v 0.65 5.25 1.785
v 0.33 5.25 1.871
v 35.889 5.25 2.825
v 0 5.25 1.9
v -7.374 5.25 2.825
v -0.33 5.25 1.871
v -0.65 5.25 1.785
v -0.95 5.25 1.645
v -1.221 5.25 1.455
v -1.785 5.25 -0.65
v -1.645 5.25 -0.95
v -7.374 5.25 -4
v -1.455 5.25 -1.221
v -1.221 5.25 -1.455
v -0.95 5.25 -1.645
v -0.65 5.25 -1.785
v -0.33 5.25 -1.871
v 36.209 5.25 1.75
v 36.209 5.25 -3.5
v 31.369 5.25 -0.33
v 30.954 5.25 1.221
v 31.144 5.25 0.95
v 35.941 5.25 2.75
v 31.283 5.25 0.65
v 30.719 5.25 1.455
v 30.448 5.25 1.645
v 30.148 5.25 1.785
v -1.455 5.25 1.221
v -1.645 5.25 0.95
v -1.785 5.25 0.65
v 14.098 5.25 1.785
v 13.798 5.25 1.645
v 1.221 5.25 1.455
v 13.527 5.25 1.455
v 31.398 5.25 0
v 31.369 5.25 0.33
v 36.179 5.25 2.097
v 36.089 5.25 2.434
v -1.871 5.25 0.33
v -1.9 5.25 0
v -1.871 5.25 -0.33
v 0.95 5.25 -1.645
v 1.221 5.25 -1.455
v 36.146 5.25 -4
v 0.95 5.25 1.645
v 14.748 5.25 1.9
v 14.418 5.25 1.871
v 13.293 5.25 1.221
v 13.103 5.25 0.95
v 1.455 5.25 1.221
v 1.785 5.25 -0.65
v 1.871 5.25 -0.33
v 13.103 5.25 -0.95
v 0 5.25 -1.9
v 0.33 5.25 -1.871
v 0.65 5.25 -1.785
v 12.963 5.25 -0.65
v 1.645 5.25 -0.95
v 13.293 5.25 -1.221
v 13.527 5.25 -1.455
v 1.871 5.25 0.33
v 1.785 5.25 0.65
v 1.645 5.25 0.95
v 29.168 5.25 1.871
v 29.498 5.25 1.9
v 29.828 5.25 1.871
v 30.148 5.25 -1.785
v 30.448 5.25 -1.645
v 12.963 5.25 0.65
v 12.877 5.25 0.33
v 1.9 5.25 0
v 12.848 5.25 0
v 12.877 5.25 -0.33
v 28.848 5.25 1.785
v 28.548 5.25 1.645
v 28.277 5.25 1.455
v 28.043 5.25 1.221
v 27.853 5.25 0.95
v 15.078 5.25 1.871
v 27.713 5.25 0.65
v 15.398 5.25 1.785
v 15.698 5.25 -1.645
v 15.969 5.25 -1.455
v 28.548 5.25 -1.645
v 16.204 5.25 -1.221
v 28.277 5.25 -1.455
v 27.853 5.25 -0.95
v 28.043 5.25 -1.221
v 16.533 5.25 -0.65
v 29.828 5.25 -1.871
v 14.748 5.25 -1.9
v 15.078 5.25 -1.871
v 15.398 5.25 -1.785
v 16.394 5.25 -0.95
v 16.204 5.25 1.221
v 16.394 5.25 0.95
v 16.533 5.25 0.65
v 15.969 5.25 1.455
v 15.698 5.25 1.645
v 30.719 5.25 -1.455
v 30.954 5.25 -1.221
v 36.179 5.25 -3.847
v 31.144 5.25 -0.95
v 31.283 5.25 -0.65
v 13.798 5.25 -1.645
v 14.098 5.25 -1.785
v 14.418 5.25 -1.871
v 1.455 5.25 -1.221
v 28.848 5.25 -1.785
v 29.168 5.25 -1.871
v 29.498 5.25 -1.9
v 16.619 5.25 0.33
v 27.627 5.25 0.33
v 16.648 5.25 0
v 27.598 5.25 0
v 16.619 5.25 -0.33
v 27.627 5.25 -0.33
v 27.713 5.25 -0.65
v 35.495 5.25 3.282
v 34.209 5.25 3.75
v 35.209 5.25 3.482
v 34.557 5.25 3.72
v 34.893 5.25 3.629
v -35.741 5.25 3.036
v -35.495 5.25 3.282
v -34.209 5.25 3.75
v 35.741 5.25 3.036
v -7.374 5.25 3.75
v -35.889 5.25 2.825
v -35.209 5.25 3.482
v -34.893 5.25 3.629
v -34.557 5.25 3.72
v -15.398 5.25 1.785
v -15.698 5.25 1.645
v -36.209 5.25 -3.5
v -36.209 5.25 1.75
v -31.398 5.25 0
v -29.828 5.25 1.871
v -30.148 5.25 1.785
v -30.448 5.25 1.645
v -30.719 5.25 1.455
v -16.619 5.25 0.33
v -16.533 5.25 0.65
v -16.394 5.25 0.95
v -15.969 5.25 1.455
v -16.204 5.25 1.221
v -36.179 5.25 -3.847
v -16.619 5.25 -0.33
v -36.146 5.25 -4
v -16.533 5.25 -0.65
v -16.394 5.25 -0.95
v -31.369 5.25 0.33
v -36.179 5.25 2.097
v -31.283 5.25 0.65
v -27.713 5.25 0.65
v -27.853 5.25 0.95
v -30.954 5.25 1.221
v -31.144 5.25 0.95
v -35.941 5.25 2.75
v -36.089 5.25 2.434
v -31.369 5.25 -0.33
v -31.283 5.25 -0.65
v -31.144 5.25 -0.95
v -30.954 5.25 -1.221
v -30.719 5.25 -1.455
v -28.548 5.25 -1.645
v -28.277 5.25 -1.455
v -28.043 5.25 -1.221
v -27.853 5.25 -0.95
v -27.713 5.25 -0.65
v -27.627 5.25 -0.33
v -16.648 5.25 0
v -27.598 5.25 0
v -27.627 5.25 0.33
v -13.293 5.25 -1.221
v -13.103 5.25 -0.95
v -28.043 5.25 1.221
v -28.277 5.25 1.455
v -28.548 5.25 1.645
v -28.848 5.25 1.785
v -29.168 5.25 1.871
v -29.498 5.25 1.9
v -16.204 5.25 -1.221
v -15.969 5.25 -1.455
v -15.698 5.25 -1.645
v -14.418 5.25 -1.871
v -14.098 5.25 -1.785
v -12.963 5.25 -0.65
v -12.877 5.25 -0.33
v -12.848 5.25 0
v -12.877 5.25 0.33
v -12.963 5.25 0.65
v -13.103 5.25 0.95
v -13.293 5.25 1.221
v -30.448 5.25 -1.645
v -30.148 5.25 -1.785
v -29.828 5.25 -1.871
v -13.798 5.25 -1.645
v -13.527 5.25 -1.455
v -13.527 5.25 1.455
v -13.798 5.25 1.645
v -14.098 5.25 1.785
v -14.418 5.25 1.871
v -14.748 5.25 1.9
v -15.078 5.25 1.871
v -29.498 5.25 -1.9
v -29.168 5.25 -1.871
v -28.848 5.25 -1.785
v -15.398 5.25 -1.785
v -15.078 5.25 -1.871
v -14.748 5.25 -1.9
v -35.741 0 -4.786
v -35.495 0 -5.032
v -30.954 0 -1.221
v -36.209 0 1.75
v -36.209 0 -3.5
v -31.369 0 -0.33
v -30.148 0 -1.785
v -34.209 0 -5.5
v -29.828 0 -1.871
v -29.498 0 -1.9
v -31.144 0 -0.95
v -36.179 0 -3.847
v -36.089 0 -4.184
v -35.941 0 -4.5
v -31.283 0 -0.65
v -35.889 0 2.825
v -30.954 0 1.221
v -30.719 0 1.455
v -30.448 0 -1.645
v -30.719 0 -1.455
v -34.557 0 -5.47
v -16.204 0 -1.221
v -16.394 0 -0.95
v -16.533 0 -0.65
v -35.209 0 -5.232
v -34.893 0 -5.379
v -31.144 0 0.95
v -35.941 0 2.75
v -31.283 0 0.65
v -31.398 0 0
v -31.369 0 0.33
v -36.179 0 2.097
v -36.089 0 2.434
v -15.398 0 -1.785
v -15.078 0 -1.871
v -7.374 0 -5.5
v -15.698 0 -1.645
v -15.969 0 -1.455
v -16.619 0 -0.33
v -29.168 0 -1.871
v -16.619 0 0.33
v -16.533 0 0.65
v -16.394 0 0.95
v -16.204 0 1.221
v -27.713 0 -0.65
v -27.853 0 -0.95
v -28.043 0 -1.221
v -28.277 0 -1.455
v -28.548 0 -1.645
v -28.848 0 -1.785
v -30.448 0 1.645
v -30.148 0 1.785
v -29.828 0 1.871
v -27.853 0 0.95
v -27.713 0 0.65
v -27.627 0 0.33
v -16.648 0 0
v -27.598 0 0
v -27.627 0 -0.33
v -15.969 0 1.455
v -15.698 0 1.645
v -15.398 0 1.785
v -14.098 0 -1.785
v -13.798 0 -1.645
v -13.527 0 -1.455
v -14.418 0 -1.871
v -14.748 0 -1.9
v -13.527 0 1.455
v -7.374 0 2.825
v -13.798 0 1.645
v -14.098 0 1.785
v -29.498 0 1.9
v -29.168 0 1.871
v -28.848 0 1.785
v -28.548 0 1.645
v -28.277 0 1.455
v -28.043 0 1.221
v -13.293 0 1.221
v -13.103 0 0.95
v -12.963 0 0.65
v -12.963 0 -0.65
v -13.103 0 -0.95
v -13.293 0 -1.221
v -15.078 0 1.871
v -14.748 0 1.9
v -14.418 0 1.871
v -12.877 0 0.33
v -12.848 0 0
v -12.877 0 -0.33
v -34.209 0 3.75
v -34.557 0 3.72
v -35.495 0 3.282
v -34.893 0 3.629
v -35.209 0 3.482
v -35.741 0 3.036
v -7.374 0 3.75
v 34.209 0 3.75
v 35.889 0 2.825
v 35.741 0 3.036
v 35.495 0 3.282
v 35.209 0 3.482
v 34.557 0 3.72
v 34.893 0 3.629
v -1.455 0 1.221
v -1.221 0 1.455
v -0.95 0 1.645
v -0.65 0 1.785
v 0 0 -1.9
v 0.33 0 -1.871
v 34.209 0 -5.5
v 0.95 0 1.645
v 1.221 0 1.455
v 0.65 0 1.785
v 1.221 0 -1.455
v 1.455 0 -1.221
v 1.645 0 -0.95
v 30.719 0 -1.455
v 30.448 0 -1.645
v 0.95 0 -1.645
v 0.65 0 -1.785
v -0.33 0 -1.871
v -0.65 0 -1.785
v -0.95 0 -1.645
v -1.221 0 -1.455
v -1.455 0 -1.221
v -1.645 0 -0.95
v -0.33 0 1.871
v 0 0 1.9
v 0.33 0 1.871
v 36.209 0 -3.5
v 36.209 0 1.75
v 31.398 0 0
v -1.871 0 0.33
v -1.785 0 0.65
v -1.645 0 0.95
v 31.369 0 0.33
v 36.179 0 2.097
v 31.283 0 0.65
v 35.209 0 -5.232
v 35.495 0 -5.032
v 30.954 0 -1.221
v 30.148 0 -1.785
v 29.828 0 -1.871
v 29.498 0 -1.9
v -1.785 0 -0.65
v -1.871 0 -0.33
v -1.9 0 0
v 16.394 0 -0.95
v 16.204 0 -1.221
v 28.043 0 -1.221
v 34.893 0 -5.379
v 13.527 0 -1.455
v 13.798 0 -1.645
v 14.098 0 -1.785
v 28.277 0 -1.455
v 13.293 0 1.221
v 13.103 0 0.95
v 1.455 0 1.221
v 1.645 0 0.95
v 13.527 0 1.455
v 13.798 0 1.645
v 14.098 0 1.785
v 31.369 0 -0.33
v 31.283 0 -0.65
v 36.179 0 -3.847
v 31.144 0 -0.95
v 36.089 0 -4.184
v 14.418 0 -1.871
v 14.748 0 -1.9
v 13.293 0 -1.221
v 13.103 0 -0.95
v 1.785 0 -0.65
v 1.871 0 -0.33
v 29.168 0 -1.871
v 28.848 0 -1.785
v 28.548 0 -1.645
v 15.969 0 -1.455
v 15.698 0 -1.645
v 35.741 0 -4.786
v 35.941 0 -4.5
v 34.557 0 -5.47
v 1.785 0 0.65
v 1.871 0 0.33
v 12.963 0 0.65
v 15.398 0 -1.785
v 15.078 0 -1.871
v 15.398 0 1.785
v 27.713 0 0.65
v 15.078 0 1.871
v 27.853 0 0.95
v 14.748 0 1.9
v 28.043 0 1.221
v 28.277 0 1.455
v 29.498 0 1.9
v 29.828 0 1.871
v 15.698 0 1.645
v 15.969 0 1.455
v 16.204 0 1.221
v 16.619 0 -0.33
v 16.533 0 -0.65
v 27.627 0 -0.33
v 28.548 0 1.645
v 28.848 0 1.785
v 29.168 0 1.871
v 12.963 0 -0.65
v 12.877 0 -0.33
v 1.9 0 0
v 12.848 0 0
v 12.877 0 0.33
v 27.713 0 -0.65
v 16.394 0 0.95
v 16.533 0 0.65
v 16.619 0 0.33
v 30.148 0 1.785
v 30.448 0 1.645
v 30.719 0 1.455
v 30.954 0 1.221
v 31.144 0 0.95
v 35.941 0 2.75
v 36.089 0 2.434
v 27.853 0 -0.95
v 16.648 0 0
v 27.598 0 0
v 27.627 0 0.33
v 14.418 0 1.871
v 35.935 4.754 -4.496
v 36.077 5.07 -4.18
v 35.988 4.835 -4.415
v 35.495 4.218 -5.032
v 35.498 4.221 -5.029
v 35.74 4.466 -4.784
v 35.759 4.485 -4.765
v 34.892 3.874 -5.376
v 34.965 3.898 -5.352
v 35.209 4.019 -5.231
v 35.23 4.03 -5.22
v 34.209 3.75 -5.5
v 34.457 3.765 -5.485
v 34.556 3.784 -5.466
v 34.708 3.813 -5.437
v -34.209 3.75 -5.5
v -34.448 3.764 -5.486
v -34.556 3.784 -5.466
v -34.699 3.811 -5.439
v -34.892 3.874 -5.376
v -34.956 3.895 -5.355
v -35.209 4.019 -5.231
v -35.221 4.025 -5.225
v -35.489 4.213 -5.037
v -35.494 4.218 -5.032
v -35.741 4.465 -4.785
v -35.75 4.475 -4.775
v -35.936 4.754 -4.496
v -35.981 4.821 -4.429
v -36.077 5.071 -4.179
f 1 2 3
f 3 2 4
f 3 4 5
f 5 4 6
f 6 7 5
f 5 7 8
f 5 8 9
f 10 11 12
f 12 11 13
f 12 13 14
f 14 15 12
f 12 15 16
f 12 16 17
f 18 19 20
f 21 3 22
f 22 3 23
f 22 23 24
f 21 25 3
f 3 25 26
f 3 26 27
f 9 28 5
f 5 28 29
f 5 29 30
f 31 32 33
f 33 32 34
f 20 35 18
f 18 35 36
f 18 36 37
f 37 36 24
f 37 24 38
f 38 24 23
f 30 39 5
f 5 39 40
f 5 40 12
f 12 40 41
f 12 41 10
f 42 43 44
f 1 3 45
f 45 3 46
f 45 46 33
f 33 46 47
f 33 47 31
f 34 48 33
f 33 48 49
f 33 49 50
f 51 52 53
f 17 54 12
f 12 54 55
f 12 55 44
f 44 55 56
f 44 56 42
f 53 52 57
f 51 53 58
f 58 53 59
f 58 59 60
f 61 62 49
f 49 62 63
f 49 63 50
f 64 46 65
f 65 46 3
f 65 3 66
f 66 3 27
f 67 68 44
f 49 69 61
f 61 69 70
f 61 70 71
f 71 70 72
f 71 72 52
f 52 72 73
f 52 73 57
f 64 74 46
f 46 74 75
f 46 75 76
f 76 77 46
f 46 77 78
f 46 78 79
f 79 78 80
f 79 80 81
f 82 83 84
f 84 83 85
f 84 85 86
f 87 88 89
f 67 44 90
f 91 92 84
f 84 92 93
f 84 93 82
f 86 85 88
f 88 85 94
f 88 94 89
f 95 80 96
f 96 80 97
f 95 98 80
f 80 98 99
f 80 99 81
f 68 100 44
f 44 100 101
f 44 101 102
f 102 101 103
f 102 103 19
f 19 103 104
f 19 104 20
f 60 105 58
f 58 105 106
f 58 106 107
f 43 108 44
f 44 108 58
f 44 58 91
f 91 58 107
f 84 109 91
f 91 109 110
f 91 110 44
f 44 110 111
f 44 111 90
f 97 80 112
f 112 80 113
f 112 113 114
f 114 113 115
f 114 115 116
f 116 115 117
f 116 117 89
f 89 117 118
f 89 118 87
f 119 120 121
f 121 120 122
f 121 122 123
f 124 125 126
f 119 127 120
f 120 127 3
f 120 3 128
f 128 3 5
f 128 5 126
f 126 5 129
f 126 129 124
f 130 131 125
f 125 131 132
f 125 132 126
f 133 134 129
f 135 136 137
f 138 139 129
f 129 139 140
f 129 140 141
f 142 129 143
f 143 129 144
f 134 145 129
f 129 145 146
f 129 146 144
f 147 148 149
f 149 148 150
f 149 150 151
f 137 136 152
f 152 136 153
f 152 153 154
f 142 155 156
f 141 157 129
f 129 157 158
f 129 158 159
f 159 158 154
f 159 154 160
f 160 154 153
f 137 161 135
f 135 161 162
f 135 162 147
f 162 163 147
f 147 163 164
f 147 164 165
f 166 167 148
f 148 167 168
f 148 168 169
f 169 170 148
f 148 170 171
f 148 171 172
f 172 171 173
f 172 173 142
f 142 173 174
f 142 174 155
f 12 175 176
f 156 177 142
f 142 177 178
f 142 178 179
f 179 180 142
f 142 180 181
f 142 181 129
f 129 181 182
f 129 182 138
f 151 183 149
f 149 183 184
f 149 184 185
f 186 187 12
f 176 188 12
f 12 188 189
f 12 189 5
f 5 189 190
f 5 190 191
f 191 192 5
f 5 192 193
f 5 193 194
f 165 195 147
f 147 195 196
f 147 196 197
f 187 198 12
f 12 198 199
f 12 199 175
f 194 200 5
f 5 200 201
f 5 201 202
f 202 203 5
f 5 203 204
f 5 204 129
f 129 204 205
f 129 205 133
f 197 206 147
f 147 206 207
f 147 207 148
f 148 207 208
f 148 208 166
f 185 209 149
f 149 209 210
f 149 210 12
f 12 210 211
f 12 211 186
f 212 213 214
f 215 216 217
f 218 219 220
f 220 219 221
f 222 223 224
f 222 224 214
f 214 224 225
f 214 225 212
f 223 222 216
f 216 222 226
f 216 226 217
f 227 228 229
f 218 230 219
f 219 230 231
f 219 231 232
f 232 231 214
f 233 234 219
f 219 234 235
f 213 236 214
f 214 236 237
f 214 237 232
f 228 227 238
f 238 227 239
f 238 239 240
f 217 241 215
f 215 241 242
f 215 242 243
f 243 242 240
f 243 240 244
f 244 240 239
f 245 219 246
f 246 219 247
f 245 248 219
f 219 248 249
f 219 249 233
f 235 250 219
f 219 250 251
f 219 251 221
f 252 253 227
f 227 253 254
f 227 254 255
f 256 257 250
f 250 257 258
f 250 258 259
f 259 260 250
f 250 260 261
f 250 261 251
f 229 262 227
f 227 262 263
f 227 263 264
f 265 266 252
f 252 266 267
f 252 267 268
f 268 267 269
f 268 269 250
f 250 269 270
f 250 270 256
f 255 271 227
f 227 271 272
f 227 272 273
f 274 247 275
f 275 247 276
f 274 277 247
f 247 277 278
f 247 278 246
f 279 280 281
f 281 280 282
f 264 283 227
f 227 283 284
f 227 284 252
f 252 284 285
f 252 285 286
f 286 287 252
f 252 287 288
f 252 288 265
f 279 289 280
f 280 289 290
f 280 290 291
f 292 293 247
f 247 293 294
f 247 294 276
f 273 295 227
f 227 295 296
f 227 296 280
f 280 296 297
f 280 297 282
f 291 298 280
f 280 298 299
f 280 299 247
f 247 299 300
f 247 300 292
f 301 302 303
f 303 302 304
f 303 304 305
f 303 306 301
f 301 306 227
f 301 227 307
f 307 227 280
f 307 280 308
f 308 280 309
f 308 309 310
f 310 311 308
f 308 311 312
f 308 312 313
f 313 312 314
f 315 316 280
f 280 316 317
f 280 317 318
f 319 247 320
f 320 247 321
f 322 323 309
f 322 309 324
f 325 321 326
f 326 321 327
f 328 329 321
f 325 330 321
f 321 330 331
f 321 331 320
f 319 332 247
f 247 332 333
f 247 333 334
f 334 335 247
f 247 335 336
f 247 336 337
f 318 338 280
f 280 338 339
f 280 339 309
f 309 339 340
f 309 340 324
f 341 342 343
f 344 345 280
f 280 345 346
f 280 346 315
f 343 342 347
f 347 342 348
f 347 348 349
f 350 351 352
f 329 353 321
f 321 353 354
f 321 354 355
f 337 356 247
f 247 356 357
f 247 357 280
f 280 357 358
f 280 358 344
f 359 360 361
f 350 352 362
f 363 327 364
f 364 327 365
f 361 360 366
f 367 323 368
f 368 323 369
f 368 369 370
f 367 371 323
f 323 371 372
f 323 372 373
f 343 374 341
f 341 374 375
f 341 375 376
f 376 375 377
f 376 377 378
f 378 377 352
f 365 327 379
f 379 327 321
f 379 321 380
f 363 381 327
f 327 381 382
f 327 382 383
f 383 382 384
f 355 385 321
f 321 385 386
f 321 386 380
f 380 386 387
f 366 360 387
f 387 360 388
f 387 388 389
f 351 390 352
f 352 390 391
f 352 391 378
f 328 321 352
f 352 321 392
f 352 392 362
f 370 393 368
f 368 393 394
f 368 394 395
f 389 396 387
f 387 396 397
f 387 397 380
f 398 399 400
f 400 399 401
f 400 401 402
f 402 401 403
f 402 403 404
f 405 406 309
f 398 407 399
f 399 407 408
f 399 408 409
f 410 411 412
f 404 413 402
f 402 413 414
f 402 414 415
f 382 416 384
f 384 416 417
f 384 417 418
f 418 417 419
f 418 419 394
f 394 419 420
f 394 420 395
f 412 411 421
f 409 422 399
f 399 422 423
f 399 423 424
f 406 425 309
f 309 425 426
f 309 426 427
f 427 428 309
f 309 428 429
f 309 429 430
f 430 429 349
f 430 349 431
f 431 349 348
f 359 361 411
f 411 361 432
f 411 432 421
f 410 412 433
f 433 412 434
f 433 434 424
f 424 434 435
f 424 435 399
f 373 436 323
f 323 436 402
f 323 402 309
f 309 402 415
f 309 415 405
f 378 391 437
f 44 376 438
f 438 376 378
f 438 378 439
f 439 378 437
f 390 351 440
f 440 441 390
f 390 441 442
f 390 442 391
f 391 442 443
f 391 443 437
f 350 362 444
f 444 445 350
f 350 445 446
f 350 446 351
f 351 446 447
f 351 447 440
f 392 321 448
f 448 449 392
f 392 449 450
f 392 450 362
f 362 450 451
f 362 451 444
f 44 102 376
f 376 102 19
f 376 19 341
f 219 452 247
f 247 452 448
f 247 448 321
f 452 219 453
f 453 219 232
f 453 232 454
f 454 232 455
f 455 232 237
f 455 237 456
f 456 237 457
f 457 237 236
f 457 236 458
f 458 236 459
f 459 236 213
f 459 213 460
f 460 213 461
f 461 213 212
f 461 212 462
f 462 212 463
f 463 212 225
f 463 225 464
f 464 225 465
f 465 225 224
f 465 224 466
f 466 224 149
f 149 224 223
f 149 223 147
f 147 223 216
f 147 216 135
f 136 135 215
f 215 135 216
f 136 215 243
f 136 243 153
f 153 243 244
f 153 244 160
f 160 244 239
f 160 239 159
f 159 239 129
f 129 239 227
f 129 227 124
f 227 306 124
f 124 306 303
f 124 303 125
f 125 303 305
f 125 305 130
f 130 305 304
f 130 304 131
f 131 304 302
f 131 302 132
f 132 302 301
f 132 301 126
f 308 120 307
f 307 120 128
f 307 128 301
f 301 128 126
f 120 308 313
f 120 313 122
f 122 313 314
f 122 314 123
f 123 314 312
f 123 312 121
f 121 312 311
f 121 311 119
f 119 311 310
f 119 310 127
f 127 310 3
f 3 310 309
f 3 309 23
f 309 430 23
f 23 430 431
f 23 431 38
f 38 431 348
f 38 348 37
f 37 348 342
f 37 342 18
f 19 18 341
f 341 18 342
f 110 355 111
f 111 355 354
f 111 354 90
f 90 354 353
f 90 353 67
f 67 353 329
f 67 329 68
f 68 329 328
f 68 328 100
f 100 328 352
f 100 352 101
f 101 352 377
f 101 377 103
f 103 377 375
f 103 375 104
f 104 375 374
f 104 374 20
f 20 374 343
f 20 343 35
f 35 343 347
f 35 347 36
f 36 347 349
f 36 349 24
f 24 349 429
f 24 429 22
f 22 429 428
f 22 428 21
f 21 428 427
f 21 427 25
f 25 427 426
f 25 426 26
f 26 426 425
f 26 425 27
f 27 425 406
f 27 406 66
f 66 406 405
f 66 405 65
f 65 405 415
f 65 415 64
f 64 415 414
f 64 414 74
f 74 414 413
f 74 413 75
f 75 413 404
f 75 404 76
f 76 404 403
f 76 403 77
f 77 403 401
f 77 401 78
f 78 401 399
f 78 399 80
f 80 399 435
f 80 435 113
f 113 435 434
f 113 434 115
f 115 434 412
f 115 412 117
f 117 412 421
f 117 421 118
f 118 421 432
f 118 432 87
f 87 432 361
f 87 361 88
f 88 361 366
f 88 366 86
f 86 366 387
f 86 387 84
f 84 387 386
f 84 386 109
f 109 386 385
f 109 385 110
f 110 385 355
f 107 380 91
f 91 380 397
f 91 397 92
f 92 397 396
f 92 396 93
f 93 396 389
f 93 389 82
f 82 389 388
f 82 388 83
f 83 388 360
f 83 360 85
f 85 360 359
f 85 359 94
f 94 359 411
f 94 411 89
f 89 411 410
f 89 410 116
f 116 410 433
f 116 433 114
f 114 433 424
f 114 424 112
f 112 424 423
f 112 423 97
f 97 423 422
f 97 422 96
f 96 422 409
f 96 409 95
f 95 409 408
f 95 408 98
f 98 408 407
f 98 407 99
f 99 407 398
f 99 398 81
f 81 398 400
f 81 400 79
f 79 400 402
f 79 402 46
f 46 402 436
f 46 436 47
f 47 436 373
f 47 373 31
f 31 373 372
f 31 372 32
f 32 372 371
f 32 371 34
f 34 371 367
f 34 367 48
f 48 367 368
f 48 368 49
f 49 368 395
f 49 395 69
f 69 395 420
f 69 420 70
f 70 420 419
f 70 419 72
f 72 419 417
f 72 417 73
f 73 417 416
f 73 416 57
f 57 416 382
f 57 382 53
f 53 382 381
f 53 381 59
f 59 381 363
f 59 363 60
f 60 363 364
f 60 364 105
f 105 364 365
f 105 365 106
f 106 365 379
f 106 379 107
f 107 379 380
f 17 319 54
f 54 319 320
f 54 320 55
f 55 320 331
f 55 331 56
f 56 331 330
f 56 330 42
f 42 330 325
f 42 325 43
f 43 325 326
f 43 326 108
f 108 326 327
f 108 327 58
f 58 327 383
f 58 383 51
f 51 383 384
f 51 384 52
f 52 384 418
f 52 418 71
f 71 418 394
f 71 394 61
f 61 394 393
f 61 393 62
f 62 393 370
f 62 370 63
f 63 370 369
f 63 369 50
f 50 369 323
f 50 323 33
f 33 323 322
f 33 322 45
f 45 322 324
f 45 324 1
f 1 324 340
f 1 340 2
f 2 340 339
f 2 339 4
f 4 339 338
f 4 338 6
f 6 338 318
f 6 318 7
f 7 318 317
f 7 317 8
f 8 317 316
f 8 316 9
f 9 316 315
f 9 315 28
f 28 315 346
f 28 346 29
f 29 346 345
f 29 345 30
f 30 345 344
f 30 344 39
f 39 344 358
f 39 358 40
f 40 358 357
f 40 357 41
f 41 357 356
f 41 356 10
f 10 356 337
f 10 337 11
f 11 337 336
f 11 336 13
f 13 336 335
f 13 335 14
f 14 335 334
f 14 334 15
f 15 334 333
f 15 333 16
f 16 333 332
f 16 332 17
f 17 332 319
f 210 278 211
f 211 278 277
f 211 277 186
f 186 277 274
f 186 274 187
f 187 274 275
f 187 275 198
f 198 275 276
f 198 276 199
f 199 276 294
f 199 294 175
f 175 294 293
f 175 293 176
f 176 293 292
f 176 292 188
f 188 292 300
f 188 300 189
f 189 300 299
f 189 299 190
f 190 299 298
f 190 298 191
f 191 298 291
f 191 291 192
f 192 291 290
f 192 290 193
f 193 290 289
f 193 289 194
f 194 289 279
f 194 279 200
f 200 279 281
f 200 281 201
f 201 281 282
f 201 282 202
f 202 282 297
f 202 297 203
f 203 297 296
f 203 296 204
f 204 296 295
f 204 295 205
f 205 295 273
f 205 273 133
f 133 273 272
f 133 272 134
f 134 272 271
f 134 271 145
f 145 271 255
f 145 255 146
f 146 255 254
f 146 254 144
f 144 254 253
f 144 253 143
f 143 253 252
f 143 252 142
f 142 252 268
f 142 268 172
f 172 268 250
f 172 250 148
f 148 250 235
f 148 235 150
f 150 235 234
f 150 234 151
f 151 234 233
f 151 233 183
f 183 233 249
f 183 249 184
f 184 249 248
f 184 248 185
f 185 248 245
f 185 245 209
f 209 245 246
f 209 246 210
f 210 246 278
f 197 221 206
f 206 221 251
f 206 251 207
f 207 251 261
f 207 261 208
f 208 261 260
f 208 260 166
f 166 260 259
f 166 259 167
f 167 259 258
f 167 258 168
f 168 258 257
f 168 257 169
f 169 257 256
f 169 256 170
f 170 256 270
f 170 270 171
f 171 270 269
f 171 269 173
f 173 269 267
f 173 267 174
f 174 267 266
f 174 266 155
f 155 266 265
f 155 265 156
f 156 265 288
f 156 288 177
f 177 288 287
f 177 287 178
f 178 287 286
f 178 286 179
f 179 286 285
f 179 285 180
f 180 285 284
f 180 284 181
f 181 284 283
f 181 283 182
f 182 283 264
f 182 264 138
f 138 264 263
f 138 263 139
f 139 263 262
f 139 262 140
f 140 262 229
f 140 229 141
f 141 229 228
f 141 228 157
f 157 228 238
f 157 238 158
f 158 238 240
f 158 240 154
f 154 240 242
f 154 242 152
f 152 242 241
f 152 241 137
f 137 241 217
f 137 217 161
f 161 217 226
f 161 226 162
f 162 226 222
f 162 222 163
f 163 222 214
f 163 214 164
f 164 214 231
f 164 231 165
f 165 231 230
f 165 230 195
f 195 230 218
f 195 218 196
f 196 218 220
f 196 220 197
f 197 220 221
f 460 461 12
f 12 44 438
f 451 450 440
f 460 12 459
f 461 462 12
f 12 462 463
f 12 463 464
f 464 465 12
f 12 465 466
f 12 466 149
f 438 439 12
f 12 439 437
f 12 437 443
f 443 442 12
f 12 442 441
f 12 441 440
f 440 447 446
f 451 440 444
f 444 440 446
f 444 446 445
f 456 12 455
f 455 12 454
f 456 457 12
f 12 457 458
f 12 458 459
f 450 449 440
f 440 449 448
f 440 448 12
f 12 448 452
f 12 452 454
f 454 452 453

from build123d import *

# Parameters (mm, degrees)
CROQUIS1_R              = 1.9
SALIENTE_EXTRUIR1_DEPTH = 5.25
CHAFL_N1_SIZE           = 1.5


with BuildPart() as part:
    # Croquis1 → Saliente-Extruir1 (new body)
    with BuildSketch(Plane(origin=(0, 0, 0), x_dir=(1, 0, 0), z_dir=(0, 1, 0))):
        with BuildLine():
            Line((34.209401077, 5.5), (-34.209401077, 5.5))
            ThreePointArc((-34.209401077, 5.5), (-35.623614639, 4.914213562), (-36.209401077, 3.5))
            Line((-36.209401077, 3.5), (-36.209401077, -1.75))
            ThreePointArc((-36.209401077, -1.75), (-35.623614639, -3.164213562), (-34.209401077, -3.75))
            Line((-34.209401077, -3.75), (34.209401077, -3.75))
            ThreePointArc((34.209401077, -3.75), (35.623614639, -3.164213562), (36.209401077, -1.75))
            Line((36.209401077, -1.75), (36.209401077, 3.5))
            ThreePointArc((36.209401077, 3.5), (35.623614639, 4.914213562), (34.209401077, 5.5))
        make_face()
        with Locations(Location((29.498076211, 0, 0), (0, 0, 90))):
            Circle(CROQUIS1_R, mode=Mode.SUBTRACT)
        with Locations(Location((14.748076211, 0, 0), (0, 0, 90))):
            Circle(CROQUIS1_R, mode=Mode.SUBTRACT)
        with Locations(Location((0, 0, 0), (0, 0, 90))):
            Circle(CROQUIS1_R, mode=Mode.SUBTRACT)
        with Locations(Location((-14.748076211, 0, 0), (0, 0, 90))):
            Circle(CROQUIS1_R, mode=Mode.SUBTRACT)
        with Locations(Location((-29.498076211, 0, 0), (0, 0, 90))):
            Circle(CROQUIS1_R, mode=Mode.SUBTRACT)
    extrude(amount=SALIENTE_EXTRUIR1_DEPTH)

    # Chaflán1
    # the kernel refuses this chamfer: 1.5 mm, written as the material it takes off along each edge
    with BuildSketch(Plane(origin=(38.066925559, 5.25, -5.5), x_dir=(0, -0.9996219169112969, -0.027495876610586202), z_dir=(-1, 0, 0))) as chafl_n1_piece_1:
        Polygon((CHAFL_N1_SIZE * 0.999621916911, CHAFL_N1_SIZE * 0.0274958766106), (-CHAFL_N1_SIZE * 0.0274958766106, CHAFL_N1_SIZE * 0.999621916911), (0, 0), align=None)
    extrude(amount=76.133851117, mode=Mode.SUBTRACT)


solid = part.part
